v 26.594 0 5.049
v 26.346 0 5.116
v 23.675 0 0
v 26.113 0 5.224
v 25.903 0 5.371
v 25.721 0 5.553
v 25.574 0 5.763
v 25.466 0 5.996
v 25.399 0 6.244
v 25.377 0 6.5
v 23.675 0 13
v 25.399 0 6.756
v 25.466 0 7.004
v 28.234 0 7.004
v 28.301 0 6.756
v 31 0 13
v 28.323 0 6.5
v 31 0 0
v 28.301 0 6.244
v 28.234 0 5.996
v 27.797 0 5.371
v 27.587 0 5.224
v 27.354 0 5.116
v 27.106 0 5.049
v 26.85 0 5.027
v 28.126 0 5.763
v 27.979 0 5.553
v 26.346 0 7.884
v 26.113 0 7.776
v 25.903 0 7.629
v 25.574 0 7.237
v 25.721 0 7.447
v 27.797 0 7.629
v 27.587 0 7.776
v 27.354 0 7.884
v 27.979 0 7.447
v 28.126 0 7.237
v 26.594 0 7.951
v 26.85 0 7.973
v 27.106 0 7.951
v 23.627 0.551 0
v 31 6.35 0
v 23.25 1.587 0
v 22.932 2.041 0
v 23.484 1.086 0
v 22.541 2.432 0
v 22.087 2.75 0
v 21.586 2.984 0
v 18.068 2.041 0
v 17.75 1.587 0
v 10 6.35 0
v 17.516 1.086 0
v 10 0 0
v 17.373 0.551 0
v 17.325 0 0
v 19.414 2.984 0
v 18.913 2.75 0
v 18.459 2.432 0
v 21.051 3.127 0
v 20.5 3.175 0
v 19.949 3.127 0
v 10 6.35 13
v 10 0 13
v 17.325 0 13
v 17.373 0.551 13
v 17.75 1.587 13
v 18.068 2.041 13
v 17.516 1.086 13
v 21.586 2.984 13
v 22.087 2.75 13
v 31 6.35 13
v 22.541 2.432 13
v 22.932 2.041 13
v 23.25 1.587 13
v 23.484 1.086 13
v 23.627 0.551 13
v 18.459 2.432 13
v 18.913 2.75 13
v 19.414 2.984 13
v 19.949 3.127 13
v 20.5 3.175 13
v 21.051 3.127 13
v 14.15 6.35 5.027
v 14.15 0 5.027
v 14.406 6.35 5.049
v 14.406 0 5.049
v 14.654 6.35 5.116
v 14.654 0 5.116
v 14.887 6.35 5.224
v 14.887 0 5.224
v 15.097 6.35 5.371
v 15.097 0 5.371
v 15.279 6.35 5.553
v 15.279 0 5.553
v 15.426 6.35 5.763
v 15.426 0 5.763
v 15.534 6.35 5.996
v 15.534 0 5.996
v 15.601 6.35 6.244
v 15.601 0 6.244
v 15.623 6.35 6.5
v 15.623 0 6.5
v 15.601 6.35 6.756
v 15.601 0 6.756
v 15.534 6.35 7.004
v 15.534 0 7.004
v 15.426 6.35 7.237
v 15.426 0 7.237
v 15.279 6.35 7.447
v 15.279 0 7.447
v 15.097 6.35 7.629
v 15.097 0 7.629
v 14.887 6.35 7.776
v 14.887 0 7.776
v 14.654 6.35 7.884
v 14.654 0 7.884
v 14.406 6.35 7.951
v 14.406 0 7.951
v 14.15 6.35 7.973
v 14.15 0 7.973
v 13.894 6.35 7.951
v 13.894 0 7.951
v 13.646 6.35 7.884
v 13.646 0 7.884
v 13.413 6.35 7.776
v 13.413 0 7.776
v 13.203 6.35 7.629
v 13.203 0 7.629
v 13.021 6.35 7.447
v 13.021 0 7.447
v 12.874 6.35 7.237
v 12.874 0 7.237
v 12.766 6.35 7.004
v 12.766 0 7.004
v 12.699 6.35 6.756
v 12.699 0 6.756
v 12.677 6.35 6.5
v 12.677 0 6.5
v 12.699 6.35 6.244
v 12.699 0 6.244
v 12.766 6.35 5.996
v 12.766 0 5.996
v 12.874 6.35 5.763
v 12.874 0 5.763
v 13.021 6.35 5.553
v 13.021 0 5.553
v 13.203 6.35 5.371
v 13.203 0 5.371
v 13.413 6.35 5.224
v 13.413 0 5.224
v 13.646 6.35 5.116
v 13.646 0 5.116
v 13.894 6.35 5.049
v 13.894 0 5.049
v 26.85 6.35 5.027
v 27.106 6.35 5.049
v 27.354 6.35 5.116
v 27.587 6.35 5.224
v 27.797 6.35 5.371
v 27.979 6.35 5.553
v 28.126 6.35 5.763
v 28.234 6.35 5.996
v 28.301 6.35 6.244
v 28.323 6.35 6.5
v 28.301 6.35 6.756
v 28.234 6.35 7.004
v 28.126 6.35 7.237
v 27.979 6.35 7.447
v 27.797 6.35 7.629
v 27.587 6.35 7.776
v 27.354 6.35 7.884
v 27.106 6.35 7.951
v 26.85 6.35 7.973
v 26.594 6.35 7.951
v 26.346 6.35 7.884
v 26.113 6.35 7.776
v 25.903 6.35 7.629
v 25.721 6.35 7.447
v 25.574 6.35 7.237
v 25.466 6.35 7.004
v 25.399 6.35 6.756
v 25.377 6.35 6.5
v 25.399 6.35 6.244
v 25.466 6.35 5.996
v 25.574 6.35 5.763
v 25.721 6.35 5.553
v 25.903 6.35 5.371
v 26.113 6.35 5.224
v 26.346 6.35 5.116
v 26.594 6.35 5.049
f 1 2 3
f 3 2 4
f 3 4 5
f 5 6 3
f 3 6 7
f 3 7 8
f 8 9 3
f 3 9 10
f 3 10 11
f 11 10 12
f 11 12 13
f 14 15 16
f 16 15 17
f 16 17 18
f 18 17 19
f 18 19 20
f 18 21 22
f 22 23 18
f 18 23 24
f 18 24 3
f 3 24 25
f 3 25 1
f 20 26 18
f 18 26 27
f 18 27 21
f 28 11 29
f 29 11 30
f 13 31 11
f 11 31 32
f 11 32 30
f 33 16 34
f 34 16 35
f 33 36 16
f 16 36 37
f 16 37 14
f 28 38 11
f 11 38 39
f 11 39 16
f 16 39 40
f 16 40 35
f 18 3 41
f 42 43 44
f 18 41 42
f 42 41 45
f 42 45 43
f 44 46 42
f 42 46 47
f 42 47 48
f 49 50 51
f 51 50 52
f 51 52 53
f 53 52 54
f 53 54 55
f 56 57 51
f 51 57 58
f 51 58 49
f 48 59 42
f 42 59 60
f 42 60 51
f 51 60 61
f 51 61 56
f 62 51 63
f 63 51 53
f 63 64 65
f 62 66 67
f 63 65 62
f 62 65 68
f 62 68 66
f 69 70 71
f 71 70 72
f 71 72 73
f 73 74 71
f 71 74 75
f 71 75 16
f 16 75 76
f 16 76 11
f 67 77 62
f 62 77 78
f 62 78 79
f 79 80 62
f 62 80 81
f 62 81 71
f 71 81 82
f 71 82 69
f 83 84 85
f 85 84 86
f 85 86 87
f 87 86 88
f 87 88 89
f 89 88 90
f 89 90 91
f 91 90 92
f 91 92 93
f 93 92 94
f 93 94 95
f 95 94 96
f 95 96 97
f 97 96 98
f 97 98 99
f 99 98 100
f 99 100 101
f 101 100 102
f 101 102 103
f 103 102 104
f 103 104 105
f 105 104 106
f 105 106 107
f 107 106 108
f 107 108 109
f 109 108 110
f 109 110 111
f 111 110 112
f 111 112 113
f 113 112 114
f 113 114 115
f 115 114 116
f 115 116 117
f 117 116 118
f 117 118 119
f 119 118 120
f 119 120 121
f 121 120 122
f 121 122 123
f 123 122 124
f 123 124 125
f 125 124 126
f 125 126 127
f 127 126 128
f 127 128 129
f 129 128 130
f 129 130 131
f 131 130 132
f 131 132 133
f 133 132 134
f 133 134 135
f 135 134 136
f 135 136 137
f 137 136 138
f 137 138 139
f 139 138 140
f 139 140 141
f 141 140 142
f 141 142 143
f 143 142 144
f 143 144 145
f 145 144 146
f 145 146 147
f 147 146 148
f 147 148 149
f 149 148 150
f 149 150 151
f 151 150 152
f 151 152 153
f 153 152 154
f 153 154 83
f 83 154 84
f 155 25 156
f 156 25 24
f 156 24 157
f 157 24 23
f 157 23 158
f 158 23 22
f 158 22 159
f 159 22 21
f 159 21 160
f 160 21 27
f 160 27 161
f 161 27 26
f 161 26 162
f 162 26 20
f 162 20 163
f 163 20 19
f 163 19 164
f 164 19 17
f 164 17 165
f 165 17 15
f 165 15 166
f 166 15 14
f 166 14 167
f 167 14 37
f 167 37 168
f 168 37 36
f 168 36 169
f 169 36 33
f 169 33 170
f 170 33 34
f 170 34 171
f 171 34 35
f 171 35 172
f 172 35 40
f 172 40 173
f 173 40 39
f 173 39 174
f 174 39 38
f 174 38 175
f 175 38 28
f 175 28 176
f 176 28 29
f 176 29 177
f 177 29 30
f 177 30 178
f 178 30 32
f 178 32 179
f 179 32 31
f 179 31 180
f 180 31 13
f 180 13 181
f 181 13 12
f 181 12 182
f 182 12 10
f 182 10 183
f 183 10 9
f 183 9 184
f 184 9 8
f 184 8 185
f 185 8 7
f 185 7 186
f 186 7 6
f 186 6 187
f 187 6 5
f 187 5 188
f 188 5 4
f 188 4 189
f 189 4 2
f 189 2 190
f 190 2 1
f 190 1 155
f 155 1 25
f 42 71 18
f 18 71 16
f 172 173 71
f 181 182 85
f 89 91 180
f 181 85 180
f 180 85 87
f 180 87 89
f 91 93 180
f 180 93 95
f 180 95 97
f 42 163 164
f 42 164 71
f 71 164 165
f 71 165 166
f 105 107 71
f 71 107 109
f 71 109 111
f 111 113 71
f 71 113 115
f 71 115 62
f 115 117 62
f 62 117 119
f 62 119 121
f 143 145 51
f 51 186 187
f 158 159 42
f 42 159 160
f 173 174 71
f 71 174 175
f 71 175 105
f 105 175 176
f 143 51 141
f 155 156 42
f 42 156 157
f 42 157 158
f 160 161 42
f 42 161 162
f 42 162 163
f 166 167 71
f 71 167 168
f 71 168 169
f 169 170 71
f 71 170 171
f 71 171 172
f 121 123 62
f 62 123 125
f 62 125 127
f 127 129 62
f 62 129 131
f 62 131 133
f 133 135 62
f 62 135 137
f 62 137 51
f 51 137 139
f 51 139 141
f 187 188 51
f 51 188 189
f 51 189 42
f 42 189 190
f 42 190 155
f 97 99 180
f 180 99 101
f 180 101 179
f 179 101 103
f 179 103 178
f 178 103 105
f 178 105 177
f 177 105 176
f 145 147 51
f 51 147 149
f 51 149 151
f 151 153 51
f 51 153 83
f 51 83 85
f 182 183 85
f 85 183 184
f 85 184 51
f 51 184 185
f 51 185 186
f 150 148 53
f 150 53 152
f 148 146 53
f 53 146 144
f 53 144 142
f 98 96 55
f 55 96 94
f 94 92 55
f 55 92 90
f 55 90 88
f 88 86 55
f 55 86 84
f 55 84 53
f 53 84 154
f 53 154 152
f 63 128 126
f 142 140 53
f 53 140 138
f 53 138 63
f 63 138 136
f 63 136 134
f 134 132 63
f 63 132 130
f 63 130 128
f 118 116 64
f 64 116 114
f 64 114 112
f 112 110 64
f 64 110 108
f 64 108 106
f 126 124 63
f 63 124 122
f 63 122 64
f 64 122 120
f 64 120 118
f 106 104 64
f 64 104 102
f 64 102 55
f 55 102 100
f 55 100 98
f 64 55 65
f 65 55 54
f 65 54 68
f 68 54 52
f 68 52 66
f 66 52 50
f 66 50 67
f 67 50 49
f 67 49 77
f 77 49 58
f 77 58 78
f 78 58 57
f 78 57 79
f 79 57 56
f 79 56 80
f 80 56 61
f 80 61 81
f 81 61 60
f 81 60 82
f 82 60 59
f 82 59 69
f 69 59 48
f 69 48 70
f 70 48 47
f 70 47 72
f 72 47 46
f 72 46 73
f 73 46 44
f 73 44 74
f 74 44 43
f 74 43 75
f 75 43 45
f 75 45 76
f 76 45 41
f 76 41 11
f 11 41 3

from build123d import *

# Parameters (mm, degrees)
SKETCH1_W           = 21
SKETCH1_H           = 13
SKETCH1_R           = 1.4732
BOSS_EXTRUDE1_DEPTH = 6.35
SKETCH2_R           = 3.175
CUT_EXTRUDE1_DEPTH  = 13


with BuildPart() as part:
    # Sketch1 → Boss-Extrude1 (new body)
    with BuildSketch(Plane(origin=(0, 0, 0), x_dir=(1, 0, 0), z_dir=(0, 1, 0))):
        with Locations((20.5, -6.5)):
            Rectangle(SKETCH1_W, SKETCH1_H)
        with Locations(Location((14.15, -6.5, 0), (0, 0, 270))):
            Circle(SKETCH1_R, mode=Mode.SUBTRACT)
        with Locations(Location((26.85, -6.5, 0), (0, 0, 270))):
            Circle(SKETCH1_R, mode=Mode.SUBTRACT)
    extrude(amount=BOSS_EXTRUDE1_DEPTH)

    # Sketch2 → Cut-Extrude1 (cut)
    with BuildSketch(Plane(origin=(0, 0, 0), x_dir=(-1, 0, 0), z_dir=(0, 0, -1))):
        with Locations((-20.5, 0)):
            Circle(SKETCH2_R)
    extrude(amount=-CUT_EXTRUDE1_DEPTH, mode=Mode.SUBTRACT)


solid = part.part
